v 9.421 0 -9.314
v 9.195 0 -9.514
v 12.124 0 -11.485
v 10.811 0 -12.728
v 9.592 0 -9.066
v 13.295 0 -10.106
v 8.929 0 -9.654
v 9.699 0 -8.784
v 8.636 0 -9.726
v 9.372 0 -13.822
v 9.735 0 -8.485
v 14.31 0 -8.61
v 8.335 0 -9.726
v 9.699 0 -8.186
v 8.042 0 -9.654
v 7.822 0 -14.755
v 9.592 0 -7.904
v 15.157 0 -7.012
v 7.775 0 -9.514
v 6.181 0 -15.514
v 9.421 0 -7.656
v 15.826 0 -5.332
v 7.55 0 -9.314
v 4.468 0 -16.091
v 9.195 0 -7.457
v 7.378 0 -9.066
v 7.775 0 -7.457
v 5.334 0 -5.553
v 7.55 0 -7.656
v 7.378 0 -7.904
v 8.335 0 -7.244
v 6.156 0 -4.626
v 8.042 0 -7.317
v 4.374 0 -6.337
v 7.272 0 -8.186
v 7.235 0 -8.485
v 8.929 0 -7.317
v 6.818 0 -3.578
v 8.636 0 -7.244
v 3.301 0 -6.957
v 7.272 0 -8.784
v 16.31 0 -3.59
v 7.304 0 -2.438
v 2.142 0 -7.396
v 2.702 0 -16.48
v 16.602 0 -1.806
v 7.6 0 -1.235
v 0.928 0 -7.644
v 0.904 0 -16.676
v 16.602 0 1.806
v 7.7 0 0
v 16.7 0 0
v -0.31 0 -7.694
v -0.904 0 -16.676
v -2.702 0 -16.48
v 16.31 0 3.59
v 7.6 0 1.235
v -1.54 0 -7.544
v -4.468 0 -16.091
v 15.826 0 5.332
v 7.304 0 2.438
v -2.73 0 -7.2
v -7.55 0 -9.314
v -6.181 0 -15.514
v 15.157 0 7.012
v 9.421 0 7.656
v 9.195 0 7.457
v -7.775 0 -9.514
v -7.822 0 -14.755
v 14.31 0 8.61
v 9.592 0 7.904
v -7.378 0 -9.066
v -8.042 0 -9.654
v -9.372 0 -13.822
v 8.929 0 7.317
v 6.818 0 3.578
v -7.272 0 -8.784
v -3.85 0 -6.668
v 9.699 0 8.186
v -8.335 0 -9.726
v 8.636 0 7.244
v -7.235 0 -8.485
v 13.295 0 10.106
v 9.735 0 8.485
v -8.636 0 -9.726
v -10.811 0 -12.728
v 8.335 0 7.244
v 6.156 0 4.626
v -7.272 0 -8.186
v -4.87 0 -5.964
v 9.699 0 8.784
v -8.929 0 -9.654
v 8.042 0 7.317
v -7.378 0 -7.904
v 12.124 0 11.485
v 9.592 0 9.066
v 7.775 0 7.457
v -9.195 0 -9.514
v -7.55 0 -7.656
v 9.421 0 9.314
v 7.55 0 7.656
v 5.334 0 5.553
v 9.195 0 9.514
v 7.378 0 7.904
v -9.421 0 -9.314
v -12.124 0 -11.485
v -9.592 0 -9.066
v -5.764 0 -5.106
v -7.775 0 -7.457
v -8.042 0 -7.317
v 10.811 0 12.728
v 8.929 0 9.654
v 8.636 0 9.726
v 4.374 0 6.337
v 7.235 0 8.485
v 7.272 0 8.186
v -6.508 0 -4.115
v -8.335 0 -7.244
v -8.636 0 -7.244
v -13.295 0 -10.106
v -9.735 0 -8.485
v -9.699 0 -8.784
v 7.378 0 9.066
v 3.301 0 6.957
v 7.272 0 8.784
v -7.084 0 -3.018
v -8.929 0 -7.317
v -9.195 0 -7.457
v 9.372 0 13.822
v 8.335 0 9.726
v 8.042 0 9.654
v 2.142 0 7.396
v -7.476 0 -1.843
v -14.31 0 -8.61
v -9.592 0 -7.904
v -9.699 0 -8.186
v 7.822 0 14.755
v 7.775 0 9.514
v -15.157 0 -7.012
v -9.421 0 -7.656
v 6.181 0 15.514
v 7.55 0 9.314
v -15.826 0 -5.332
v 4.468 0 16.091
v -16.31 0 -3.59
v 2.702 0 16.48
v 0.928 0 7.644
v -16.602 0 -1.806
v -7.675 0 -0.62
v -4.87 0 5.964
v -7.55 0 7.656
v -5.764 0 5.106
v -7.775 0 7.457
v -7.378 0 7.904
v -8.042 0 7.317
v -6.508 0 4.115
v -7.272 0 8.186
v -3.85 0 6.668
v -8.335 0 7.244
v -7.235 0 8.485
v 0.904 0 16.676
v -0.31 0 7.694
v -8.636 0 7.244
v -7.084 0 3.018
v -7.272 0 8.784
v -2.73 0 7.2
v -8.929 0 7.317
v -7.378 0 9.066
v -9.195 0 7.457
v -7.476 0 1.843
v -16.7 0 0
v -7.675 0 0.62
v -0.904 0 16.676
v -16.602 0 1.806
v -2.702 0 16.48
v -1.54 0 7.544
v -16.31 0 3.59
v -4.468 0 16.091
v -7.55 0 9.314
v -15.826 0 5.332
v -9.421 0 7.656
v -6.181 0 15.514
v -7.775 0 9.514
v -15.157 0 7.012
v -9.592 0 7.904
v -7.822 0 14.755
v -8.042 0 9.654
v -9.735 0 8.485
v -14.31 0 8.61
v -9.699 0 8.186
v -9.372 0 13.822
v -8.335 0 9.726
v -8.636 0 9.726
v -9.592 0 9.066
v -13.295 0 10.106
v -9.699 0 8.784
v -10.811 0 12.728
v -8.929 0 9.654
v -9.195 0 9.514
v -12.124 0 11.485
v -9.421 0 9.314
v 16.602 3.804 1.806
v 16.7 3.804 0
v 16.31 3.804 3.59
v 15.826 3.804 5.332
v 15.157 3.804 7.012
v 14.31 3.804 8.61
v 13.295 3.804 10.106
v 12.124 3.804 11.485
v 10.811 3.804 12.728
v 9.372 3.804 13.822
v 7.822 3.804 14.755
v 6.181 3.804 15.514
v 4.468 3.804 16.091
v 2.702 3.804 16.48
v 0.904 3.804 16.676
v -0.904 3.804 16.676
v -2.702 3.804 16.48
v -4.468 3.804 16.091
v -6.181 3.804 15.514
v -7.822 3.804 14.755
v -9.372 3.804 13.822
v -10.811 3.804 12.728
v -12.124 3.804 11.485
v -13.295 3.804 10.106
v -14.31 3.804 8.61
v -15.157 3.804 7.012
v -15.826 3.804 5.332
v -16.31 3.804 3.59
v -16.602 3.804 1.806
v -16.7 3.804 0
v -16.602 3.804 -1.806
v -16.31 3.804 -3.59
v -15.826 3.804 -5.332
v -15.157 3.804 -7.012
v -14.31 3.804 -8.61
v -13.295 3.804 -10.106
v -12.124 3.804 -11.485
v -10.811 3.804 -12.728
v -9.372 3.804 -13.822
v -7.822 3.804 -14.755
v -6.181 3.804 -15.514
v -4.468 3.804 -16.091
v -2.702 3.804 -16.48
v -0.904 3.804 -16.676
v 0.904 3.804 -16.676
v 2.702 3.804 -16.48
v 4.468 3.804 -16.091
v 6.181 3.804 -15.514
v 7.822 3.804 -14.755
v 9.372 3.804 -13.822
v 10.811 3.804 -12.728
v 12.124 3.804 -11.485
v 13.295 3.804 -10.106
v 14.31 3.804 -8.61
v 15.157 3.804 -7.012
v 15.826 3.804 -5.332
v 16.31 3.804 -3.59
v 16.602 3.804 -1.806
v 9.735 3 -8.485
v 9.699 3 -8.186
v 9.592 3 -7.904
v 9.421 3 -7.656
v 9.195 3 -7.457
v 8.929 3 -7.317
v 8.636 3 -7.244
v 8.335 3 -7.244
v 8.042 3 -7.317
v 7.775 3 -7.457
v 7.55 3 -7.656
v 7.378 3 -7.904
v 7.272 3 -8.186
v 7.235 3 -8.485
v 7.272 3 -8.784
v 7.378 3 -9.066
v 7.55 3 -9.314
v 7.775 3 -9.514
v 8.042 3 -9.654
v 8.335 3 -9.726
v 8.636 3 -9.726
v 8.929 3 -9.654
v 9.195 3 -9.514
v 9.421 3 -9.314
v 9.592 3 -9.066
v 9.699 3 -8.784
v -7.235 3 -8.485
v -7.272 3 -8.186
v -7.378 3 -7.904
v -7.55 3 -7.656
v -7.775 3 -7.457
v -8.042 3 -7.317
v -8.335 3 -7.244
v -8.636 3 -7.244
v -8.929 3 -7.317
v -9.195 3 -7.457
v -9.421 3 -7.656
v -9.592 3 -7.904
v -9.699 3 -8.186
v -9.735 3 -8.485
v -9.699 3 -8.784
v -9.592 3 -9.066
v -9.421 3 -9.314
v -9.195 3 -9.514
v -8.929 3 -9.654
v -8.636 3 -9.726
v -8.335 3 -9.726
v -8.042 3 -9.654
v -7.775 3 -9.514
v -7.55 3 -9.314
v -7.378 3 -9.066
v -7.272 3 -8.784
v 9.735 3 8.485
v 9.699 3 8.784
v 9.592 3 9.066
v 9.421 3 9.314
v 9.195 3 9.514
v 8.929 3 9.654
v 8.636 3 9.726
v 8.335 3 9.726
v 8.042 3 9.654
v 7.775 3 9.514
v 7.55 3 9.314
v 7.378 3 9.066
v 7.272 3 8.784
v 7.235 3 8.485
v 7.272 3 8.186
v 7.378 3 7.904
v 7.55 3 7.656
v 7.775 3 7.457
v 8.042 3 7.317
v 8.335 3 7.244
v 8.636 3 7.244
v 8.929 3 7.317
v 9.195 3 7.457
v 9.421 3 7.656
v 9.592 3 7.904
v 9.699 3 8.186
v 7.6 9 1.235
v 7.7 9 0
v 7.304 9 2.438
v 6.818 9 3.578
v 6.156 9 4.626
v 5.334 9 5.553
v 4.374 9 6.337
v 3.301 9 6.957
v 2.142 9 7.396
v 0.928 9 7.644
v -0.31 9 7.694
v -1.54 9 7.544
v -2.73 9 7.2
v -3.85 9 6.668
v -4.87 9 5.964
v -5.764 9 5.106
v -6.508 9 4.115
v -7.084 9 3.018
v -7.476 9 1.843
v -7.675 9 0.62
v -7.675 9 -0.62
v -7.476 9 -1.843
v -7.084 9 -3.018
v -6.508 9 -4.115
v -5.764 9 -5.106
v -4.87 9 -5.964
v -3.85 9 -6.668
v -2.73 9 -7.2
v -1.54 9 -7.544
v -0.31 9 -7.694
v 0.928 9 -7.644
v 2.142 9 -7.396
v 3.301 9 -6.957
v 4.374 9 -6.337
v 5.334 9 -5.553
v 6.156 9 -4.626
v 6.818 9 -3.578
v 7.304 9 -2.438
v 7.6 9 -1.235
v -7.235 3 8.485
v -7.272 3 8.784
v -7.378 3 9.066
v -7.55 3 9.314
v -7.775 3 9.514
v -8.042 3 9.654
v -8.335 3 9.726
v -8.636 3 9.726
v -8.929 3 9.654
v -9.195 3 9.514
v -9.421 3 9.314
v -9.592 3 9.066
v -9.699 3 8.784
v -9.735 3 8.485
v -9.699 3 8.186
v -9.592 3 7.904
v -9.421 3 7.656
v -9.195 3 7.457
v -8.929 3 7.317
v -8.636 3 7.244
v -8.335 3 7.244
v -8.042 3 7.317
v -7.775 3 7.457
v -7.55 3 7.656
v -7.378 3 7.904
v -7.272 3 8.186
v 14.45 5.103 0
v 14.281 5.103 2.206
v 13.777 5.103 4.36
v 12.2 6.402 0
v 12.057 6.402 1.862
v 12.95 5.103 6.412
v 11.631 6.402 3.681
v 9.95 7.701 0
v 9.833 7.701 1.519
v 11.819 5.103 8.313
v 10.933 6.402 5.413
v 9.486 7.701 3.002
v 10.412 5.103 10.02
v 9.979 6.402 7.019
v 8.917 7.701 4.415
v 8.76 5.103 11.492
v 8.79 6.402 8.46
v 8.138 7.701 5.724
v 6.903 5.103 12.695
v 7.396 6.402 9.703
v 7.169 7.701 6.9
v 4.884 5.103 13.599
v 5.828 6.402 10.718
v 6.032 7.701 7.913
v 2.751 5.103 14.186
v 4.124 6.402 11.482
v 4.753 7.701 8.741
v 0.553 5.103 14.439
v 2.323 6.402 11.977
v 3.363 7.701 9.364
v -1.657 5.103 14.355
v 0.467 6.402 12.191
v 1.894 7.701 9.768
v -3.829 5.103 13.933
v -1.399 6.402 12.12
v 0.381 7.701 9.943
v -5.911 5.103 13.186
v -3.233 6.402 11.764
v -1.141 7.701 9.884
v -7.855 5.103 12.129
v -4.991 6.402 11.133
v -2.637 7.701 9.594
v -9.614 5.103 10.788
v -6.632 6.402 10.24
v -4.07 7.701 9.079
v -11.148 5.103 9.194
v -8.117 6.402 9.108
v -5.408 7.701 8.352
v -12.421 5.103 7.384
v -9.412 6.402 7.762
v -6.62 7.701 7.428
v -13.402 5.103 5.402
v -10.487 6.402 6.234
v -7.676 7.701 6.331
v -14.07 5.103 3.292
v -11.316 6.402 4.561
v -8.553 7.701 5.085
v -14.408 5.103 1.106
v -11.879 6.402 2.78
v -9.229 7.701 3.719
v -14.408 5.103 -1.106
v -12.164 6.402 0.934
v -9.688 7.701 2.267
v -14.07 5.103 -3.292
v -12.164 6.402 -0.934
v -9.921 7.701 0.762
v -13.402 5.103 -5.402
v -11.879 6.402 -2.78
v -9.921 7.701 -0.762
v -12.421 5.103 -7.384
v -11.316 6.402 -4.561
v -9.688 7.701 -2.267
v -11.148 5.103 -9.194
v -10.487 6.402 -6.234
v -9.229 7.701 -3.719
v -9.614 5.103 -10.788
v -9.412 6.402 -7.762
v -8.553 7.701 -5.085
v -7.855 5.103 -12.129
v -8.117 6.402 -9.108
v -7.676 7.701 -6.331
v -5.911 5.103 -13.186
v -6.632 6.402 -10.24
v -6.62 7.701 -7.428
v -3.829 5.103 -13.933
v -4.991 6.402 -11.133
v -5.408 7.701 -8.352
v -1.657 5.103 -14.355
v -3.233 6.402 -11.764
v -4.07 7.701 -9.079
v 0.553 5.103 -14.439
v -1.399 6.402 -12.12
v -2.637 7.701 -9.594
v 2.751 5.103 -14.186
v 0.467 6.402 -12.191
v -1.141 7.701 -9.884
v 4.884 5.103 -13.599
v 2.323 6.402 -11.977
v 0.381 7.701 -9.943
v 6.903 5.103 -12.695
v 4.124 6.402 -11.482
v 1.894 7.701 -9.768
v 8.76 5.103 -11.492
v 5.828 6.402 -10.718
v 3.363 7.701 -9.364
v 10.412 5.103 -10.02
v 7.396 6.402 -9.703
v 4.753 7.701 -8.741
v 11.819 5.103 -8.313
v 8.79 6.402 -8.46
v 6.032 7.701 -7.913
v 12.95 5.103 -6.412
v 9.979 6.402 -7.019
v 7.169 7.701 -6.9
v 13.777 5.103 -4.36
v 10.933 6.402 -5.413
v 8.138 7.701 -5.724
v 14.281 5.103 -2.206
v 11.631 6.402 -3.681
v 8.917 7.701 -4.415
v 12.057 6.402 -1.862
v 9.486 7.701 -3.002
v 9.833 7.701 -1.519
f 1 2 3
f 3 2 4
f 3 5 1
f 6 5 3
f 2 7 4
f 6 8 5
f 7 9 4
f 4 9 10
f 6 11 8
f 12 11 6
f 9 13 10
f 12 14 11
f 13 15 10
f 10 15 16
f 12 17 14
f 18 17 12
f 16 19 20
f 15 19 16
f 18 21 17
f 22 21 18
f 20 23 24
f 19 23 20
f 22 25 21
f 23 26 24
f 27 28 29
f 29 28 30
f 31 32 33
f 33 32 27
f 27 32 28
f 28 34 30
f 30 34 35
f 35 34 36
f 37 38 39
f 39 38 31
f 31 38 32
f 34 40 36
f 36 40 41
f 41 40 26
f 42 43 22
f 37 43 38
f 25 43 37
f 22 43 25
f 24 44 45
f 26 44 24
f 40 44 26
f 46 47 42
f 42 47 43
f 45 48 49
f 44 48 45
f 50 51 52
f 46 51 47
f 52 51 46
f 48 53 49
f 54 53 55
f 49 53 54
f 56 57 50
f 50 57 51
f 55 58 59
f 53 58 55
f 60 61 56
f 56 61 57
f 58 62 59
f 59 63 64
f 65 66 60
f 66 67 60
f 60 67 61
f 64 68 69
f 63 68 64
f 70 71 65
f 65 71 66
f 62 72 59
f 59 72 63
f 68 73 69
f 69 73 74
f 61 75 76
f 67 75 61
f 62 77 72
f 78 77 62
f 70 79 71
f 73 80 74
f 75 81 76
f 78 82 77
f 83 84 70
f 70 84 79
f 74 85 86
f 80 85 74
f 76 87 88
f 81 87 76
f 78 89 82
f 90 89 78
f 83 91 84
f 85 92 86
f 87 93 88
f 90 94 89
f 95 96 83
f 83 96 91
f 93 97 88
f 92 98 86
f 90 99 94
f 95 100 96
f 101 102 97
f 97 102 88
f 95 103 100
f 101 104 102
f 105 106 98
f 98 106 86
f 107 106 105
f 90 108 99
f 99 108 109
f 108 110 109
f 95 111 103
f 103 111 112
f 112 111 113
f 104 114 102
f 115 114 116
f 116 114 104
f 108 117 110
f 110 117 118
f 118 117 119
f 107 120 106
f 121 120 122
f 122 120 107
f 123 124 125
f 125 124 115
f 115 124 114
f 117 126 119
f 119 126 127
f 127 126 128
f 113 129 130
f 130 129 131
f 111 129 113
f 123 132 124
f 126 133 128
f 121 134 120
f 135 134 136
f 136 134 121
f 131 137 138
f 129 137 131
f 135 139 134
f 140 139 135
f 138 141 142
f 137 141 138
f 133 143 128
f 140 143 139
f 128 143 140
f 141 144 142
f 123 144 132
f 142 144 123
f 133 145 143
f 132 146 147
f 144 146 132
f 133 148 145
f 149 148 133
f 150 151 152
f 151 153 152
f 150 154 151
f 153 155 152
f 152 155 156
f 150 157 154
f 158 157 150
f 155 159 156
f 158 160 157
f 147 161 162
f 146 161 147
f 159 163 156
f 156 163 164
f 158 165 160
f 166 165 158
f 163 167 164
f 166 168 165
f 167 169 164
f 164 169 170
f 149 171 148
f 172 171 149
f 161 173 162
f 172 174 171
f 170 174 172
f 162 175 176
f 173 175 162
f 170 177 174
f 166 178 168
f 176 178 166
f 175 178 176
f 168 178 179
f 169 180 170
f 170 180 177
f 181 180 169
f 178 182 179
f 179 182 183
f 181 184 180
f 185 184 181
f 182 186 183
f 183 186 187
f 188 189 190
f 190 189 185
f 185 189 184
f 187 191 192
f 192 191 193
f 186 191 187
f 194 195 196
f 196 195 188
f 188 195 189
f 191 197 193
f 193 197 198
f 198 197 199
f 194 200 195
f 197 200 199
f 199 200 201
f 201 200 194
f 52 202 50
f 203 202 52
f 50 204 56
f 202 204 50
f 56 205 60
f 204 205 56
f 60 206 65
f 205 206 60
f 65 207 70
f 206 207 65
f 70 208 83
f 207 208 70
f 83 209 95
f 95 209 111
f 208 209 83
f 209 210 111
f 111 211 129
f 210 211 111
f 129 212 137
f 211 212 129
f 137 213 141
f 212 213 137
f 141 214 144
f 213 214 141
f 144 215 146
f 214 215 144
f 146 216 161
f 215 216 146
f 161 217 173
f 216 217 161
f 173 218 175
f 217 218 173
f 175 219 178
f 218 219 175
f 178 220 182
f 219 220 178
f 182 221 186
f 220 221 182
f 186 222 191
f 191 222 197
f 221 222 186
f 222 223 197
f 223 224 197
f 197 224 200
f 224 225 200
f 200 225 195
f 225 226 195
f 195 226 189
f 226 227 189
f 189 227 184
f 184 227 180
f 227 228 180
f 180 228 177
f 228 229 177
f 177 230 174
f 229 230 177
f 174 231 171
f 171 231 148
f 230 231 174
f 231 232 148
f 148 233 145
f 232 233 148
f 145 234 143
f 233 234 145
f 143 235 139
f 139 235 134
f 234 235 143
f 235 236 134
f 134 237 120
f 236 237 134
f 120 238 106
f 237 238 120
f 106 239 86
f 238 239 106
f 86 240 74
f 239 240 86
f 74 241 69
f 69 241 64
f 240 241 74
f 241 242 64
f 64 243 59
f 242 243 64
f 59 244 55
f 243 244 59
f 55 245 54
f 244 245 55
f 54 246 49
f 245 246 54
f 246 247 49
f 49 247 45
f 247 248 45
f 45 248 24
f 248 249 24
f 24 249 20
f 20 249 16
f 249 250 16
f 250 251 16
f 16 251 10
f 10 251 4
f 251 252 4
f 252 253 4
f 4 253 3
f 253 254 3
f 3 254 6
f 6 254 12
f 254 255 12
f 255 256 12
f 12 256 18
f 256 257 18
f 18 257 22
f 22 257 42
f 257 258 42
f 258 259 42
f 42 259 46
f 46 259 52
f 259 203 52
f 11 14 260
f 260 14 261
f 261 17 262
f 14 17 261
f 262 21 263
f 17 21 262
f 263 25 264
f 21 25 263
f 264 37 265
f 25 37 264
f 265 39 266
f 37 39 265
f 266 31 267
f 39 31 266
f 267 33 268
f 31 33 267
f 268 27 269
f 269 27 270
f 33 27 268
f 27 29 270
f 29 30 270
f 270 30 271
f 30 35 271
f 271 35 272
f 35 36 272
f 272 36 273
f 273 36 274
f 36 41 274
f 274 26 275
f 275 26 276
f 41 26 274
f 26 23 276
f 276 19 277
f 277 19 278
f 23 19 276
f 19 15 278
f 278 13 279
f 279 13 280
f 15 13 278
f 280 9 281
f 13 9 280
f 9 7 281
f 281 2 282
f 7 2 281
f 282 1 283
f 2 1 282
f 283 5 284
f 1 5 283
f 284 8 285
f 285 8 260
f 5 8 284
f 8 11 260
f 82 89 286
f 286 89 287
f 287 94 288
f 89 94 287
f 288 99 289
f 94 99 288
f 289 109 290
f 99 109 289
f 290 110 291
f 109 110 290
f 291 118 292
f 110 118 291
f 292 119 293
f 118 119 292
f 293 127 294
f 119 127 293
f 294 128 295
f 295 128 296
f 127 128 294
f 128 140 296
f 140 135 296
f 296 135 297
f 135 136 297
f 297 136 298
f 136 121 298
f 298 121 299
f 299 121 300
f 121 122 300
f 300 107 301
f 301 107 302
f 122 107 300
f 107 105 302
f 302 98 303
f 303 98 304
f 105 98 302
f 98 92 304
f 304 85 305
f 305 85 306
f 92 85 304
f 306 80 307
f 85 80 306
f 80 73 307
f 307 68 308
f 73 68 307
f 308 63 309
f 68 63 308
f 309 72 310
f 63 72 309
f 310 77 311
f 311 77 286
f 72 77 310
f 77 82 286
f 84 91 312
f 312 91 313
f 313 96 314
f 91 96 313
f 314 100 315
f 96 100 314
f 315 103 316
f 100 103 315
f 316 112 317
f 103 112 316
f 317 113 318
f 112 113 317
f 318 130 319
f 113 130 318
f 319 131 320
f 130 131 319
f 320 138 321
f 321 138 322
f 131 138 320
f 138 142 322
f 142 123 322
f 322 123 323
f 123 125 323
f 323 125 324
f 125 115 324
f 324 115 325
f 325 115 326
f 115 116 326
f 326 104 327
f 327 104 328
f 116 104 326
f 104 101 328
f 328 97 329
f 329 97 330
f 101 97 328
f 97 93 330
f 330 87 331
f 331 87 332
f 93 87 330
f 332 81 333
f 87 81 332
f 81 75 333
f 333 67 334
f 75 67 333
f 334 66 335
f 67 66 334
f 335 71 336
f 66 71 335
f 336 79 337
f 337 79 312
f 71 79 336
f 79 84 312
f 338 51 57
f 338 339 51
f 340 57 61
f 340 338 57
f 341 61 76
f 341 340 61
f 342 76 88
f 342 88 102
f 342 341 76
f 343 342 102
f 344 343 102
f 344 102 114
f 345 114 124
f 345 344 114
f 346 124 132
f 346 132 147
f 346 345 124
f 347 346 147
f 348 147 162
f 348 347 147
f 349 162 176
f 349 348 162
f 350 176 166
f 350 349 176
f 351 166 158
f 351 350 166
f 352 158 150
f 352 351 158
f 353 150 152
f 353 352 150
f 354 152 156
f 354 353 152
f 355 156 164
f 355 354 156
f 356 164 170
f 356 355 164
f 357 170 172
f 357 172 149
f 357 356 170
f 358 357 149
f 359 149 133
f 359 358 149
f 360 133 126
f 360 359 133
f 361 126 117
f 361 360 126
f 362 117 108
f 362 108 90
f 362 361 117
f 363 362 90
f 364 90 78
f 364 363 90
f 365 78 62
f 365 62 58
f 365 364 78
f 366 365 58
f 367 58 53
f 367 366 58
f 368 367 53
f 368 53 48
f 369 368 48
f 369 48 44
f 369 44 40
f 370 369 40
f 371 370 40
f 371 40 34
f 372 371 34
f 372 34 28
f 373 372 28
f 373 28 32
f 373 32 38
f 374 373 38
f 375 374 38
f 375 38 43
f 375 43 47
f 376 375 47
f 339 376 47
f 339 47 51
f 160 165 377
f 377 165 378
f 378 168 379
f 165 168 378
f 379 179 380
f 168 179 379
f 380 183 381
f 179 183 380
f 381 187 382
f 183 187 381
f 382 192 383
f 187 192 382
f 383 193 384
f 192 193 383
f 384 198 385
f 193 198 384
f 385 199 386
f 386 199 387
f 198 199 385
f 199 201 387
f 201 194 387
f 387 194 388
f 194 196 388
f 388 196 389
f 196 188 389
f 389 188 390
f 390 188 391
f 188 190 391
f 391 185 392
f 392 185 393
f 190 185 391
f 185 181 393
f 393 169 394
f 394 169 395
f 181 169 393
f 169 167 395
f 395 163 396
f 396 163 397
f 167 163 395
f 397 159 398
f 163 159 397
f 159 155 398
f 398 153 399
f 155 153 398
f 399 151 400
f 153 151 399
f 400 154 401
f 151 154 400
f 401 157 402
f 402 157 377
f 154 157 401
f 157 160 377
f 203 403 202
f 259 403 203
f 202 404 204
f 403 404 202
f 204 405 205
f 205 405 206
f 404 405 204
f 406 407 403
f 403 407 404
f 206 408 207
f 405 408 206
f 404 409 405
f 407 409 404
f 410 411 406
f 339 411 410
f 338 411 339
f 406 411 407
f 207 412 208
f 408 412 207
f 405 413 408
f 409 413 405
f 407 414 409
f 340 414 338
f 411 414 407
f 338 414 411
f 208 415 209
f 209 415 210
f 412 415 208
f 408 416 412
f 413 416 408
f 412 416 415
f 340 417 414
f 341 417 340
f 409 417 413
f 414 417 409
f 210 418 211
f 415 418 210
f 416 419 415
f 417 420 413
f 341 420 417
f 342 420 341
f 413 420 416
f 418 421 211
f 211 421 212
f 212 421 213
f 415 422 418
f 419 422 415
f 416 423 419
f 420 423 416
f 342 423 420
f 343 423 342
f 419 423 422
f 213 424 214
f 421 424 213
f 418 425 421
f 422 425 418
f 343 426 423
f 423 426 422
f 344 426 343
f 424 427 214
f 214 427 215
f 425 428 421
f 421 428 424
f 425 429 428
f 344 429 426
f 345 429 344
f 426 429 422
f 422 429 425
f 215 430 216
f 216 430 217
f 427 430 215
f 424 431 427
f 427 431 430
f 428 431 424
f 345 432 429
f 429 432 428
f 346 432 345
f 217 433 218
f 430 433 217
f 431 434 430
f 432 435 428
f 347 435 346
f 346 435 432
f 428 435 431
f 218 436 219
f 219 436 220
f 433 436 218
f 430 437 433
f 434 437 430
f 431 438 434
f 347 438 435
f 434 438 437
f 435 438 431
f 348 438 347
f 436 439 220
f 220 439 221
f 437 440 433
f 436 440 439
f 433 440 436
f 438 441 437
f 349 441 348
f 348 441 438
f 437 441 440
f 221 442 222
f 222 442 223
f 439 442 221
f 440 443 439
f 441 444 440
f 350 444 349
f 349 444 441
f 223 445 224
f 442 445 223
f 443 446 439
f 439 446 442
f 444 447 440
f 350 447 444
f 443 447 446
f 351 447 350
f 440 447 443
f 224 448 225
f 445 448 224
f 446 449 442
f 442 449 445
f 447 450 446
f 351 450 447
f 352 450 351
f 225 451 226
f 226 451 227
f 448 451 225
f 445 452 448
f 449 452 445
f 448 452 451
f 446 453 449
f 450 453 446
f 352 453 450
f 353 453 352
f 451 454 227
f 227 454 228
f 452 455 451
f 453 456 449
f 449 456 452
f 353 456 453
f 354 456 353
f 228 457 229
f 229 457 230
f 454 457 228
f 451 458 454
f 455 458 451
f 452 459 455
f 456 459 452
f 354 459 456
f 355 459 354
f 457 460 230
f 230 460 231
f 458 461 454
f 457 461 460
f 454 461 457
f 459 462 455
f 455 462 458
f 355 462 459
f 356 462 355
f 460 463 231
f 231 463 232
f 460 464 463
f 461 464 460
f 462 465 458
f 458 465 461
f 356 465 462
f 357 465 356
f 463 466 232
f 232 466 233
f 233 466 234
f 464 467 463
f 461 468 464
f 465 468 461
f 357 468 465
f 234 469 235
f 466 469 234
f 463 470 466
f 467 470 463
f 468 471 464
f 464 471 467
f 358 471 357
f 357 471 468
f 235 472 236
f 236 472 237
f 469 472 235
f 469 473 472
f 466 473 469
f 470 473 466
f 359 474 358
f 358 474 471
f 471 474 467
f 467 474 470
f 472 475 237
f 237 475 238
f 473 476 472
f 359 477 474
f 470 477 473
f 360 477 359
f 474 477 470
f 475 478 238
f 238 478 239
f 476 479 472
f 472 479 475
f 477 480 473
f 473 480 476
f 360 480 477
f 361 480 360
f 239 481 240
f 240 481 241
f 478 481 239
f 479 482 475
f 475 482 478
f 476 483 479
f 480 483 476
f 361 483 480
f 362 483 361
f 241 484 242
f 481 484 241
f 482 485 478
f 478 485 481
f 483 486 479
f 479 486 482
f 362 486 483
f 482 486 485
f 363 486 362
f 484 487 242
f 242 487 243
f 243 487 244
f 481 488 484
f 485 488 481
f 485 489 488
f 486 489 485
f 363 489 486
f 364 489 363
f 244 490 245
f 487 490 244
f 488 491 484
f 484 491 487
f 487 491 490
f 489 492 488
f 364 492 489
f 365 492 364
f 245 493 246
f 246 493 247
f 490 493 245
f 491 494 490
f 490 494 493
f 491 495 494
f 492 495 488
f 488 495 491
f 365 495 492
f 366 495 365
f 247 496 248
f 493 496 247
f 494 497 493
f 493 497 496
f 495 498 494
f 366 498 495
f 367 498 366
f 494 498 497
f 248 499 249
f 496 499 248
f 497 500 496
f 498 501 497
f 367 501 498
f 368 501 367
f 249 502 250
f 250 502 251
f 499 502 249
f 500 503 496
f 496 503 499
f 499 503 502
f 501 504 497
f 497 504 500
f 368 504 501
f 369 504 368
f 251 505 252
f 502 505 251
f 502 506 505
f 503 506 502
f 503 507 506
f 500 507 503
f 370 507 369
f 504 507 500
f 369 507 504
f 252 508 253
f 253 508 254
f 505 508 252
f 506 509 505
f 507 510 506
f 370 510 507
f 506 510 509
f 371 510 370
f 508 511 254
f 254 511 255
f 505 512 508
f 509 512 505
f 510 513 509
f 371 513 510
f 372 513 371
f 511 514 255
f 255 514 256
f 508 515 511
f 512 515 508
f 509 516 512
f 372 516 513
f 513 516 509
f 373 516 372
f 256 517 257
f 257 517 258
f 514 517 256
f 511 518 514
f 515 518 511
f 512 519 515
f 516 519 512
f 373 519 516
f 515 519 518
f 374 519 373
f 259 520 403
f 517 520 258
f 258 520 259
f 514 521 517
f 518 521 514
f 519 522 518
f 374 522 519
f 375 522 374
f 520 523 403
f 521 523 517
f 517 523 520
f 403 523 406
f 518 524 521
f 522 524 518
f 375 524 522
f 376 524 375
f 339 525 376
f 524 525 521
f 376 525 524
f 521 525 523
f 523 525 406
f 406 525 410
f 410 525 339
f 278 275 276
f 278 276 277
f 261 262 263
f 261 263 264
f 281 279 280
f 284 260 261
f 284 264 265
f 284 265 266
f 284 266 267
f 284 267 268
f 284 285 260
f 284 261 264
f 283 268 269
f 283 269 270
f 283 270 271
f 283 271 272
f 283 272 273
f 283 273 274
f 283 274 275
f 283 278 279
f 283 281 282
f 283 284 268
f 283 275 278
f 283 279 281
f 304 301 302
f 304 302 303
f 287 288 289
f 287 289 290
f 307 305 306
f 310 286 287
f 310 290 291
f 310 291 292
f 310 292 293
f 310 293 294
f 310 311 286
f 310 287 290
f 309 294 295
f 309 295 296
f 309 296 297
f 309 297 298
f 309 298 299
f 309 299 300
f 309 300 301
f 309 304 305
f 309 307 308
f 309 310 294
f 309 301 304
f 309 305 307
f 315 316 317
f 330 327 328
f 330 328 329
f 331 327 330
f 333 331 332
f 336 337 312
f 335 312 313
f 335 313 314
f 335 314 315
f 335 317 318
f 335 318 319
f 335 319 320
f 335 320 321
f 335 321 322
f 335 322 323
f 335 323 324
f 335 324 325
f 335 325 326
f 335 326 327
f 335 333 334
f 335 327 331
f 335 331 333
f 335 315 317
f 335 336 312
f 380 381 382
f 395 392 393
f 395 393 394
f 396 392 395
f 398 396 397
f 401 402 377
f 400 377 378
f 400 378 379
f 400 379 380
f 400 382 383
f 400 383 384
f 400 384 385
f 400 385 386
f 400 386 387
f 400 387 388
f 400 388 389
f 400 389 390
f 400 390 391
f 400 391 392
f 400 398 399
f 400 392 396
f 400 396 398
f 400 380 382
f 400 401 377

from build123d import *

# Parameters (mm, degrees)
SKETCH001_R  = 1.25
POCKET_DEPTH = 3


with BuildPart() as part:
    # Sketch → Revolution (revolve)
    with BuildSketch(Plane.XY):
        Polygon((7.7, 0), (16.7, 0), (16.7, 3.803848), (7.7, 9), align=None)
    revolve(axis=Axis((0, 0, 0), (0, 1, 0)))

    # Sketch001 (on Face1 of Revolution) → Pocket (cut)
    with BuildSketch(Plane.XZ):
        with Locations((-8.485281, 8.485281)):
            Circle(SKETCH001_R)
        with Locations((8.485281, 8.485281)):
            Circle(SKETCH001_R)
        with Locations((8.485281, -8.485281)):
            Circle(SKETCH001_R)
        with Locations((-8.485281, -8.485281)):
            Circle(SKETCH001_R)
    extrude(amount=-POCKET_DEPTH, mode=Mode.SUBTRACT)


solid = part.part
